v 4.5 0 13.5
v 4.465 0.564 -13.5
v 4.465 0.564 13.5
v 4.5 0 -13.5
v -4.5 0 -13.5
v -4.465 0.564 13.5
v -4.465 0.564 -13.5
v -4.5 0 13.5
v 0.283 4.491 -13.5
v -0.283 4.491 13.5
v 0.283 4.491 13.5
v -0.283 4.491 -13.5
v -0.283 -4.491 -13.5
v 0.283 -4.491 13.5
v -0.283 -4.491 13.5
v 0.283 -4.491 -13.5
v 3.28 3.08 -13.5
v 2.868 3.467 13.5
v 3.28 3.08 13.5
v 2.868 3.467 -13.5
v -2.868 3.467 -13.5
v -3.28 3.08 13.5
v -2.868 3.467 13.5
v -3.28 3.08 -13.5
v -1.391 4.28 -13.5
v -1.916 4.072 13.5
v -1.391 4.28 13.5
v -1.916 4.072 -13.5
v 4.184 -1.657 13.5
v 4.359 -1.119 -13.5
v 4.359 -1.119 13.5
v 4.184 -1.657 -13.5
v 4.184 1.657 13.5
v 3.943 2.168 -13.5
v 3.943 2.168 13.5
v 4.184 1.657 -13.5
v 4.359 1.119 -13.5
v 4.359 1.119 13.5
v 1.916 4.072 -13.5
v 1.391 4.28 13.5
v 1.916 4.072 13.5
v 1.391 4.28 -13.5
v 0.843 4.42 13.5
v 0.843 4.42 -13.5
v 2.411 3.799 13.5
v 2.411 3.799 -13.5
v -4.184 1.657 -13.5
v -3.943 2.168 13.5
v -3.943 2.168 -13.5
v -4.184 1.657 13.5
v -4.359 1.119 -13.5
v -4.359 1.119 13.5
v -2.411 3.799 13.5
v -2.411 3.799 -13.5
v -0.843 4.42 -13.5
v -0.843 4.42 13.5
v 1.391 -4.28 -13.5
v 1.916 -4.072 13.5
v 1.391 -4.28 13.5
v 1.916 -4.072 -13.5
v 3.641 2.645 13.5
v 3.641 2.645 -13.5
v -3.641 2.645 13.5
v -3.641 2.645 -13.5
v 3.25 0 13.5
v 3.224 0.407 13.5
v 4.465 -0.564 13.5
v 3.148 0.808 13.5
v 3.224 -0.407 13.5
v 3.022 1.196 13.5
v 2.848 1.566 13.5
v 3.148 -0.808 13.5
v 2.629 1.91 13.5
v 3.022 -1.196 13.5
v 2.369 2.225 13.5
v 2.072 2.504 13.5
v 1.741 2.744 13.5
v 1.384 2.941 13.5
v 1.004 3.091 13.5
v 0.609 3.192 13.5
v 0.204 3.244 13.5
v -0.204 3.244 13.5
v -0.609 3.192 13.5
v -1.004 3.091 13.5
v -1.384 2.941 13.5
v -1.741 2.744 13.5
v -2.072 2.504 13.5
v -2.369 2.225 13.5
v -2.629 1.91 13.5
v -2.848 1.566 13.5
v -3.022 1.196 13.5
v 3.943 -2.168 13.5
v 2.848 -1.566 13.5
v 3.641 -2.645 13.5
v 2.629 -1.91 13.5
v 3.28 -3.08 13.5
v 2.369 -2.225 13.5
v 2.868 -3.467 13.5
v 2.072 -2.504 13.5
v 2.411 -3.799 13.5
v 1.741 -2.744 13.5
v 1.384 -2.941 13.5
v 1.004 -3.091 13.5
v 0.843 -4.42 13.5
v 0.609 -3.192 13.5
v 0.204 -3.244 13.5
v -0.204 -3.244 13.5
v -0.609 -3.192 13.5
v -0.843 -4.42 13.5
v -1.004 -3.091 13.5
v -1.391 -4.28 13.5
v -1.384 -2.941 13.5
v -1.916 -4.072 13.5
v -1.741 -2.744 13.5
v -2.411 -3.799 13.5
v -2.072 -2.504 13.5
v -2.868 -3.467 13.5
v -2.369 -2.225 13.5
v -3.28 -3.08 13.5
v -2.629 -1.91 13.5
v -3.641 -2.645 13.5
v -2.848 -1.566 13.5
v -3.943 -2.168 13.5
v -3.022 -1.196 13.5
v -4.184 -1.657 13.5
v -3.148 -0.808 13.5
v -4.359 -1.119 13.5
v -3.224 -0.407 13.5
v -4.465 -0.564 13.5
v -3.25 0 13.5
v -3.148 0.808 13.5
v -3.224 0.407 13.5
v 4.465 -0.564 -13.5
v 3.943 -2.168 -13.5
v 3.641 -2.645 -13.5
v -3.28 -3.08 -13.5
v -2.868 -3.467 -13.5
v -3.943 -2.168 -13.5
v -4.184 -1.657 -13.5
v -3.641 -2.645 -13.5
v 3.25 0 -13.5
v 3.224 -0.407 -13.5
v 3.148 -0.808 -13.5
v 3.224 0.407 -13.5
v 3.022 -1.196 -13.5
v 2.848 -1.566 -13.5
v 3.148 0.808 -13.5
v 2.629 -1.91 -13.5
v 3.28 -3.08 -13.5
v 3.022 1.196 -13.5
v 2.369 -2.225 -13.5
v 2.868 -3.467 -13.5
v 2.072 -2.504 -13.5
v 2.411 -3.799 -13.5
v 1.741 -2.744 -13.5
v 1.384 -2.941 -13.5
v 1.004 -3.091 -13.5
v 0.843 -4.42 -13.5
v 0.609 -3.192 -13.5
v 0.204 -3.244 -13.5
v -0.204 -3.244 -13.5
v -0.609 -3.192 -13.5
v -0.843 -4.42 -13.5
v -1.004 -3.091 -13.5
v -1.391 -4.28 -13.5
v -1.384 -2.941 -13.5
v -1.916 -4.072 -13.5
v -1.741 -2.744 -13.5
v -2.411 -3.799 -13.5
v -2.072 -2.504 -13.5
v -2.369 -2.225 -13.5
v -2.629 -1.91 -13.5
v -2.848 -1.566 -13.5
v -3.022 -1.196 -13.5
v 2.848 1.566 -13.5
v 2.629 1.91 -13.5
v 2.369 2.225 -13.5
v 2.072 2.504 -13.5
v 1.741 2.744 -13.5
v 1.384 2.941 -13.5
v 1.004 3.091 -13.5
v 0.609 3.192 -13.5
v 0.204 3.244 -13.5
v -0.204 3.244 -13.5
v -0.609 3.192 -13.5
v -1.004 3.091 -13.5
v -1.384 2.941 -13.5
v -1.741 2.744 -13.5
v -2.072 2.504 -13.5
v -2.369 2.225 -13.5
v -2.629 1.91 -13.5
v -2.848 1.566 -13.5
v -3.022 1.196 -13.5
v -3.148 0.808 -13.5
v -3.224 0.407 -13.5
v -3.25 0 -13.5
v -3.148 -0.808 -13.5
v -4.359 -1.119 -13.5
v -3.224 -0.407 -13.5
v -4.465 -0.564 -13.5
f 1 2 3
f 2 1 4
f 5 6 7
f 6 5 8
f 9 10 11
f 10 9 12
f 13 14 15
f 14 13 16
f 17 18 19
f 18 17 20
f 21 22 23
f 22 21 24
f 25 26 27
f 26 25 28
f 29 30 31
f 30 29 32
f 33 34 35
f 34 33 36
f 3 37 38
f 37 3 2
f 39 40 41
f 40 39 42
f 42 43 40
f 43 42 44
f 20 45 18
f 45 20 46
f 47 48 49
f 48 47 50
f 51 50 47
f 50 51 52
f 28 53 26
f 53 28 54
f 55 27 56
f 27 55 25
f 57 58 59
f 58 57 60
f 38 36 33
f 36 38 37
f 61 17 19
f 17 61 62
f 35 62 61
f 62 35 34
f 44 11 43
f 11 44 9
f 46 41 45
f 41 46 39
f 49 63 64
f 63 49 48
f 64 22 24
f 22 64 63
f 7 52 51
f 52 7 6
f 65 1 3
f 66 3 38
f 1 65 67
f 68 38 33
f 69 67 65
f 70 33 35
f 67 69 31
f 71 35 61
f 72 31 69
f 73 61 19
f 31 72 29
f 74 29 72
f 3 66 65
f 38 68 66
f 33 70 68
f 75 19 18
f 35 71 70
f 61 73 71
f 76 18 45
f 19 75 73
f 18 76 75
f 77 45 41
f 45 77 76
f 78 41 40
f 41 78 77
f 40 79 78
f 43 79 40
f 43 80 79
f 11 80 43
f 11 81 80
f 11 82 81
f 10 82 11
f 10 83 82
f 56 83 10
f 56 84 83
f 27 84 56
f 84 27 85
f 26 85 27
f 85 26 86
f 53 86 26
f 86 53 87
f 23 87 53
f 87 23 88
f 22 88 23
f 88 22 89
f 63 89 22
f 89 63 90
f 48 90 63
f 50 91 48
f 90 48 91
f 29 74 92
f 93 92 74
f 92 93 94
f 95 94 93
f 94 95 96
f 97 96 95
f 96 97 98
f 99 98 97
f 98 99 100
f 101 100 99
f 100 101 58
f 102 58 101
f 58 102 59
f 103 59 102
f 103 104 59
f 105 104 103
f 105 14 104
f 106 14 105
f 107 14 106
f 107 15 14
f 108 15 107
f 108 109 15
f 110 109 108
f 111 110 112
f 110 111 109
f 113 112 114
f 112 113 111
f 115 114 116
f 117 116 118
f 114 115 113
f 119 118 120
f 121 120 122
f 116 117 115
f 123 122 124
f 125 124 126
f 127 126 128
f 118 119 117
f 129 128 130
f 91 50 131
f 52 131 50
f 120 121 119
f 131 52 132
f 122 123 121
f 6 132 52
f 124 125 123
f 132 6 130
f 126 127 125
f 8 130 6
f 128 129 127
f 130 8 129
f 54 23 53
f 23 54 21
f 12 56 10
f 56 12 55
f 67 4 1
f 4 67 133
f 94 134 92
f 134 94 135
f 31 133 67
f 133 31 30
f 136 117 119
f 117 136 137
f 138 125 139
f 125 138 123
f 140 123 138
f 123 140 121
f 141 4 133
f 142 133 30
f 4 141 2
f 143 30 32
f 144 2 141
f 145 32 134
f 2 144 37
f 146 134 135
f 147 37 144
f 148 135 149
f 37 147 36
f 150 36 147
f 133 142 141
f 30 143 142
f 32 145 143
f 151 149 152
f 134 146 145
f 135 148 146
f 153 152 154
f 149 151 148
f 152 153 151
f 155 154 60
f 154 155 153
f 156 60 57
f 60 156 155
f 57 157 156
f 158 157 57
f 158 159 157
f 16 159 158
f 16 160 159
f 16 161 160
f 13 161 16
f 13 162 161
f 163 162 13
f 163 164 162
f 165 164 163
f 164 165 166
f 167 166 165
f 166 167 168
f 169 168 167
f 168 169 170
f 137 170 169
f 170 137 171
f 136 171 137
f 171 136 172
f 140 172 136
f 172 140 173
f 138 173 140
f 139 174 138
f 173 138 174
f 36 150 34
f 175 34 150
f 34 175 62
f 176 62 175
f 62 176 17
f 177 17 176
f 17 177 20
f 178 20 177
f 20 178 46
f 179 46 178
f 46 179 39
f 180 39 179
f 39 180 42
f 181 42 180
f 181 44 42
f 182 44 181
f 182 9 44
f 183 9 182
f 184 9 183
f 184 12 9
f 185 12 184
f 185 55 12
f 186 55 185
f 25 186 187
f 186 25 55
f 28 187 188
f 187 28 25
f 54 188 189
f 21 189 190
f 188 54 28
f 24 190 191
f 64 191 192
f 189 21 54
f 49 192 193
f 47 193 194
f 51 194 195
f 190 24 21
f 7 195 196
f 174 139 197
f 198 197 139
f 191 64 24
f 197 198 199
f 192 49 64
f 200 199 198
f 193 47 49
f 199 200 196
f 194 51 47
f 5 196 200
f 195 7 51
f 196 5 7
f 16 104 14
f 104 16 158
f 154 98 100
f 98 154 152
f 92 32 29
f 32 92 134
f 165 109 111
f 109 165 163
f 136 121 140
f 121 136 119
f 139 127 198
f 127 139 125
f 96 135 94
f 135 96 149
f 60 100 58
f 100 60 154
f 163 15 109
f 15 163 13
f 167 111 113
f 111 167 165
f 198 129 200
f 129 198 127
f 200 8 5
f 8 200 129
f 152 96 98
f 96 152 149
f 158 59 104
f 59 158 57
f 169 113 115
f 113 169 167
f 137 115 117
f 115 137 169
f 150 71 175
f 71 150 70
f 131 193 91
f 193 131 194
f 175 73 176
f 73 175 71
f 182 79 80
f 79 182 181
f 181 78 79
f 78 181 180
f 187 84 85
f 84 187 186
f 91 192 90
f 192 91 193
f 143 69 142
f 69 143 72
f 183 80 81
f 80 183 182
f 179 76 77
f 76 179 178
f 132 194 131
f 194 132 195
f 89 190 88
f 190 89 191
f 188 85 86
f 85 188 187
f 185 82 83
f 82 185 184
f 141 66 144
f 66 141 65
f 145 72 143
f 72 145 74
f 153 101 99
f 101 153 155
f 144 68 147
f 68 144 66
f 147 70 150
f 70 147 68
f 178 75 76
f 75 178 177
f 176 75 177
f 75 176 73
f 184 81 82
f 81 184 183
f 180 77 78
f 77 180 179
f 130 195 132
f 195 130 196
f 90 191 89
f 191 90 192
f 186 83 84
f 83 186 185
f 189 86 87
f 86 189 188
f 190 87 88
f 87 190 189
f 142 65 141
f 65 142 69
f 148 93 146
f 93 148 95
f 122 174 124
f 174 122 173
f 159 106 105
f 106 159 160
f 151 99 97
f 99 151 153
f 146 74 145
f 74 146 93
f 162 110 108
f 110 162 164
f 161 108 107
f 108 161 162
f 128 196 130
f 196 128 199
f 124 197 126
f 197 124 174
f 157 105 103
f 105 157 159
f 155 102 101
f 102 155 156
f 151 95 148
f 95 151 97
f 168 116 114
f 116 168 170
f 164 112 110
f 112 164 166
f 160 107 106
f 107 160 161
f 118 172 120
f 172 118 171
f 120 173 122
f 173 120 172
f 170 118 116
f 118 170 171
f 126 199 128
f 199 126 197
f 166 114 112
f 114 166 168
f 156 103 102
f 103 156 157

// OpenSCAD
$fn = 50;


difference() {
	union() {
		translate(v = [0, 0, -13.5000000000]) {
			cylinder(h = 27, r = 4.5000000000);
		}
	}
	union() {
		translate(v = [0, 0, -100.0000000000]) {
			cylinder(h = 200, r = 3.2500000000);
		}
	}
}
